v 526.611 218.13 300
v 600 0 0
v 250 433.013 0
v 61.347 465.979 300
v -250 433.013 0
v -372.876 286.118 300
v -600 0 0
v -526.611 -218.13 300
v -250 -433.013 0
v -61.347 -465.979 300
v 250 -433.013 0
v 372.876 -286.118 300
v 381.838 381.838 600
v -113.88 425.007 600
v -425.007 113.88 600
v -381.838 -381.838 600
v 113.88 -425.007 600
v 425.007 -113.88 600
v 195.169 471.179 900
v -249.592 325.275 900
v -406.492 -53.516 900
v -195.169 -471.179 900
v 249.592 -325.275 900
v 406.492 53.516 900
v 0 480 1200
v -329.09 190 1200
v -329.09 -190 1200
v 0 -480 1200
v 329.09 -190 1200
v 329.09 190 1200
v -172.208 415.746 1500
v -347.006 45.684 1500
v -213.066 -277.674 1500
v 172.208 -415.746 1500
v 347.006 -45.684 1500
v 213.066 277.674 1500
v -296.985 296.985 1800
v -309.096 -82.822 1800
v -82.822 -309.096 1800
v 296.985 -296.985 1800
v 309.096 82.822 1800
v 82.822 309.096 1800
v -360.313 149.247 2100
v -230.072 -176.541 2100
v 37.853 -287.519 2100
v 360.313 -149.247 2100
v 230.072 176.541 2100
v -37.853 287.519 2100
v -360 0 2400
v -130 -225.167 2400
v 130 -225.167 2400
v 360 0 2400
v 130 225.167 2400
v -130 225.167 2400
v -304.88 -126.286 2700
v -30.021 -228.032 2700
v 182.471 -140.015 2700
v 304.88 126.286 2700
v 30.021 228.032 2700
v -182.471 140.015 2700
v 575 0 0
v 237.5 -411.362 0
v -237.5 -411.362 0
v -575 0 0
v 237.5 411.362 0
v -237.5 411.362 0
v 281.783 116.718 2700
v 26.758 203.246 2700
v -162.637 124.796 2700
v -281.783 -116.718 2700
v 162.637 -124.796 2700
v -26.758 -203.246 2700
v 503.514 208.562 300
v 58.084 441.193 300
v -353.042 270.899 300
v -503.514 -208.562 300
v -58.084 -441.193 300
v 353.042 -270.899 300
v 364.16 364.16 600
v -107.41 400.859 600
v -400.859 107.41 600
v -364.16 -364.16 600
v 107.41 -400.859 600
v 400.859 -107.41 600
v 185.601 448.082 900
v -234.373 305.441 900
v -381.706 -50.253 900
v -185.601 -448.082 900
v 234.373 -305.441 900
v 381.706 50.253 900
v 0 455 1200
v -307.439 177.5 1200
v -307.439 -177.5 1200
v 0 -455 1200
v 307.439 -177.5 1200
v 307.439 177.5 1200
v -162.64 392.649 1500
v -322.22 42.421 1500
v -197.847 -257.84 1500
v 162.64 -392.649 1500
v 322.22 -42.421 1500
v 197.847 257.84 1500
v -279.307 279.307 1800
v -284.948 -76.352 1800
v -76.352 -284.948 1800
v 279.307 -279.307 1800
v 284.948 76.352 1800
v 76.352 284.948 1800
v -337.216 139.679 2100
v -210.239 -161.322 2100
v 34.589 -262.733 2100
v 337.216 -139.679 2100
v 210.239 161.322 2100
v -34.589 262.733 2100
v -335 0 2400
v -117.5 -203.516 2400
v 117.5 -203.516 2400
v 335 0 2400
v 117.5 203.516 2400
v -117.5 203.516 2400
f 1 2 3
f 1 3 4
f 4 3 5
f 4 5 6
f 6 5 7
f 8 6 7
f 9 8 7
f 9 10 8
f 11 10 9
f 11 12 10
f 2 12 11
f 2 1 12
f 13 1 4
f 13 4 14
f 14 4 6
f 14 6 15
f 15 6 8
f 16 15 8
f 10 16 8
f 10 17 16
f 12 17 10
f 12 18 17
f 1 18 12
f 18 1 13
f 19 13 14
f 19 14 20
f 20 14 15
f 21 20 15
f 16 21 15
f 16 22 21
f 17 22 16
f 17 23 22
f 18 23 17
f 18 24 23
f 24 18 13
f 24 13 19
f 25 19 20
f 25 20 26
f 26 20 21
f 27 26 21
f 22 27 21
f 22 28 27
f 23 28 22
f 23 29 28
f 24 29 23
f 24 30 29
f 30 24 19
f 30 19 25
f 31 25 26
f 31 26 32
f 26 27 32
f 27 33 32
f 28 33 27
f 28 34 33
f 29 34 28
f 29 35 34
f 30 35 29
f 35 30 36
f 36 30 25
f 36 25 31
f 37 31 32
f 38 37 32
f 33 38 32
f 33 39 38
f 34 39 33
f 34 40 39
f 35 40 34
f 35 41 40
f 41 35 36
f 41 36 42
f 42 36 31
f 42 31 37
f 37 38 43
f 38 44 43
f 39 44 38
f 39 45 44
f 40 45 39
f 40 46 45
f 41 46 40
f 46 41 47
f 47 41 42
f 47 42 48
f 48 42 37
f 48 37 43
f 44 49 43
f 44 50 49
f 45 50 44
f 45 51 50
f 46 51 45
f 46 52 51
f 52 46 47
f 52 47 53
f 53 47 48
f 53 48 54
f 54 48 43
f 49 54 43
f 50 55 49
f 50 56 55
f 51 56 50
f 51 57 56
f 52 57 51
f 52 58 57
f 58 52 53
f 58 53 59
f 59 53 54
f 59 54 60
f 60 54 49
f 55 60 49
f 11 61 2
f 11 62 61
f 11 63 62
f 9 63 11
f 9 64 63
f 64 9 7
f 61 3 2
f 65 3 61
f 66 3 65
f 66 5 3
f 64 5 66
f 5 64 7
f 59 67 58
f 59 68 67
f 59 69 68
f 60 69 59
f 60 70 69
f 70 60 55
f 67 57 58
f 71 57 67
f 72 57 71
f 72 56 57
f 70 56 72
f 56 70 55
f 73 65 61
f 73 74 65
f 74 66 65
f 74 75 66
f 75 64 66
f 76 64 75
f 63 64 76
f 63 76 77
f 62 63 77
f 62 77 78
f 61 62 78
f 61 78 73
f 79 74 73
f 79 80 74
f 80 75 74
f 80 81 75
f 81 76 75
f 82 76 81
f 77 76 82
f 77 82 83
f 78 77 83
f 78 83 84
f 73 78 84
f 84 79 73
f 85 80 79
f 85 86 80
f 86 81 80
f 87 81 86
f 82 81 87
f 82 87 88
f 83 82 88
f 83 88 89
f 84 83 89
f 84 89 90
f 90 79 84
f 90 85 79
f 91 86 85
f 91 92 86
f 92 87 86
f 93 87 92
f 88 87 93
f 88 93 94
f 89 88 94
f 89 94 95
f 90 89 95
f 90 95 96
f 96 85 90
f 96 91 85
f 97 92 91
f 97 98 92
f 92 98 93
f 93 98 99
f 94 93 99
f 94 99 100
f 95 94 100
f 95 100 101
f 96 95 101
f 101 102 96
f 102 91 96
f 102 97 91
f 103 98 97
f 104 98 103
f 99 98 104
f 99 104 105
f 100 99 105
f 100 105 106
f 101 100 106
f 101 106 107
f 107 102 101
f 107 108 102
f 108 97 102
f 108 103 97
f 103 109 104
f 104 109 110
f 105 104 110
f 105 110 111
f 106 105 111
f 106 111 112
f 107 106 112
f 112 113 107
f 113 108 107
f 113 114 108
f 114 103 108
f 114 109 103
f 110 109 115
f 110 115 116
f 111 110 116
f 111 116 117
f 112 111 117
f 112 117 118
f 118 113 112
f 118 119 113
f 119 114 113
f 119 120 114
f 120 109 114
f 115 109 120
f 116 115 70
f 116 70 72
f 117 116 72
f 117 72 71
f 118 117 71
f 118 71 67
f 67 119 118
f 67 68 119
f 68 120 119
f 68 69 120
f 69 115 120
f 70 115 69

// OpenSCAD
difference() {
	polyhedron(faces = [[0, 6, 1], [1, 6, 7], [1, 7, 2], [2, 7, 8], [2, 8, 3], [3, 8, 9], [3, 9, 4], [4, 9, 10], [4, 10, 5], [5, 10, 11], [5, 11, 0], [0, 11, 6], [6, 12, 7], [7, 12, 13], [7, 13, 8], [8, 13, 14], [8, 14, 9], [9, 14, 15], [9, 15, 10], [10, 15, 16], [10, 16, 11], [11, 16, 17], [11, 17, 6], [6, 17, 12], [12, 18, 13], [13, 18, 19], [13, 19, 14], [14, 19, 20], [14, 20, 15], [15, 20, 21], [15, 21, 16], [16, 21, 22], [16, 22, 17], [17, 22, 23], [17, 23, 12], [12, 23, 18], [18, 24, 19], [19, 24, 25], [19, 25, 20], [20, 25, 26], [20, 26, 21], [21, 26, 27], [21, 27, 22], [22, 27, 28], [22, 28, 23], [23, 28, 29], [23, 29, 18], [18, 29, 24], [24, 30, 25], [25, 30, 31], [25, 31, 26], [26, 31, 32], [26, 32, 27], [27, 32, 33], [27, 33, 28], [28, 33, 34], [28, 34, 29], [29, 34, 35], [29, 35, 24], [24, 35, 30], [30, 36, 31], [31, 36, 37], [31, 37, 32], [32, 37, 38], [32, 38, 33], [33, 38, 39], [33, 39, 34], [34, 39, 40], [34, 40, 35], [35, 40, 41], [35, 41, 30], [30, 41, 36], [36, 42, 37], [37, 42, 43], [37, 43, 38], [38, 43, 44], [38, 44, 39], [39, 44, 45], [39, 45, 40], [40, 45, 46], [40, 46, 41], [41, 46, 47], [41, 47, 36], [36, 47, 42], [42, 48, 43], [43, 48, 49], [43, 49, 44], [44, 49, 50], [44, 50, 45], [45, 50, 51], [45, 51, 46], [46, 51, 52], [46, 52, 47], [47, 52, 53], [47, 53, 42], [42, 53, 48], [48, 54, 49], [49, 54, 55], [49, 55, 50], [50, 55, 56], [50, 56, 51], [51, 56, 57], [51, 57, 52], [52, 57, 58], [52, 58, 53], [53, 58, 59], [53, 59, 48], [48, 59, 54], [1, 60, 0], [54, 61, 55], [2, 60, 1], [55, 61, 56], [3, 60, 2], [56, 61, 57], [4, 60, 3], [57, 61, 58], [5, 60, 4], [58, 61, 59], [0, 60, 5], [59, 61, 54]], points = [[600.0000000000, 0.0000000000, 0.0000000000], [250.0000000000, 433.0127018922, 0.0000000000], [-250.0000000000, 433.0127018922, 0.0000000000], [-600.0000000000, 0.0000000000, 0.0000000000], [-250.0000000000, -433.0127018922, 0.0000000000], [250.0000000000, -433.0127018922, 0.0000000000], [526.6113335314, 218.1295564481, 300.0000000000], [61.3473103434, 465.9790848457, 300.0000000000], [-372.8760699369, 286.1178716341, 300.0000000000], [-526.6113335314, -218.1295564481, 300.0000000000], [-61.3473103434, -465.9790848457, 300.0000000000], [372.8760699369, -286.1178716341, 300.0000000000], [381.8376618407, 381.8376618407, 600.0000000000], [-113.8803798451, 425.0073635672, 600.0000000000], [-425.0073635672, 113.8803798451, 600.0000000000], [-381.8376618407, -381.8376618407, 600.0000000000], [113.8803798451, -425.0073635672, 600.0000000000], [425.0073635672, -113.8803798451, 600.0000000000], [195.1685505062, 471.1785615808, 900.0000000000], [-249.5921858936, 325.2748695194, 900.0000000000], [-406.4923931633, -53.5157388102, 900.0000000000], [-195.1685505062, -471.1785615808, 900.0000000000], [249.5921858936, -325.2748695194, 900.0000000000], [406.4923931633, 53.5157388102, 900.0000000000], [0.0000000000, 480.0000000000, 1200.0000000000], [-329.0896534381, 190.0000000000, 1200.0000000000], [-329.0896534381, -190.0000000000, 1200.0000000000], [-0.0000000000, -480.0000000000, 1200.0000000000], [329.0896534381, -190.0000000000, 1200.0000000000], [329.0896534381, 190.0000000000, 1200.0000000000], [-172.2075445643, 415.7457896301, 1500.0000000000], [-347.0057014808, 45.6841672770, 1500.0000000000], [-213.0665001531, -277.6736691019, 1500.0000000000], [172.2075445643, -415.7457896301, 1500.0000000000], [347.0057014808, -45.6841672770, 1500.0000000000], [213.0665001531, 277.6736691019, 1500.0000000000], [-296.9848480983, 296.9848480983, 1800.0000000000], [-309.0962644125, -82.8220944328, 1800.0000000000], [-82.8220944328, -309.0962644125, 1800.0000000000], [296.9848480983, -296.9848480984, 1800.0000000000], [309.0962644125, 82.8220944328, 1800.0000000000], [82.8220944328, 309.0962644125, 1800.0000000000], [-360.3130176794, 149.2465386224, 2100.0000000000], [-230.0724686845, -176.5408144125, 2100.0000000000], [37.8525957438, -287.5190097984, 2100.0000000000], [360.3130176794, -149.2465386224, 2100.0000000000], [230.0724686845, 176.5408144125, 2100.0000000000], [-37.8525957438, 287.5190097984, 2100.0000000000], [-360.0000000000, 0.0000000000, 2400.0000000000], [-130.0000000000, -225.1666049840, 2400.0000000000], [130.0000000000, -225.1666049840, 2400.0000000000], [360.0000000000, -0.0000000000, 2400.0000000000], [130.0000000000, 225.1666049840, 2400.0000000000], [-130.0000000000, 225.1666049840, 2400.0000000000], [-304.8802457287, -126.2855326805, 2700.0000000000], [-30.0210242106, -228.0323181160, 2700.0000000000], [182.4712682670, -140.0151286720, 2700.0000000000], [304.8802457287, 126.2855326805, 2700.0000000000], [30.0210242106, 228.0323181160, 2700.0000000000], [-182.4712682670, 140.0151286720, 2700.0000000000], [-0.0000000000, 0.0000000000, 0.0000000000], [0.0000000000, 0.0000000000, 2700.0000000000]]);
	polyhedron(faces = [[0, 6, 1], [1, 6, 7], [1, 7, 2], [2, 7, 8], [2, 8, 3], [3, 8, 9], [3, 9, 4], [4, 9, 10], [4, 10, 5], [5, 10, 11], [5, 11, 0], [0, 11, 6], [6, 12, 7], [7, 12, 13], [7, 13, 8], [8, 13, 14], [8, 14, 9], [9, 14, 15], [9, 15, 10], [10, 15, 16], [10, 16, 11], [11, 16, 17], [11, 17, 6], [6, 17, 12], [12, 18, 13], [13, 18, 19], [13, 19, 14], [14, 19, 20], [14, 20, 15], [15, 20, 21], [15, 21, 16], [16, 21, 22], [16, 22, 17], [17, 22, 23], [17, 23, 12], [12, 23, 18], [18, 24, 19], [19, 24, 25], [19, 25, 20], [20, 25, 26], [20, 26, 21], [21, 26, 27], [21, 27, 22], [22, 27, 28], [22, 28, 23], [23, 28, 29], [23, 29, 18], [18, 29, 24], [24, 30, 25], [25, 30, 31], [25, 31, 26], [26, 31, 32], [26, 32, 27], [27, 32, 33], [27, 33, 28], [28, 33, 34], [28, 34, 29], [29, 34, 35], [29, 35, 24], [24, 35, 30], [30, 36, 31], [31, 36, 37], [31, 37, 32], [32, 37, 38], [32, 38, 33], [33, 38, 39], [33, 39, 34], [34, 39, 40], [34, 40, 35], [35, 40, 41], [35, 41, 30], [30, 41, 36], [36, 42, 37], [37, 42, 43], [37, 43, 38], [38, 43, 44], [38, 44, 39], [39, 44, 45], [39, 45, 40], [40, 45, 46], [40, 46, 41], [41, 46, 47], [41, 47, 36], [36, 47, 42], [42, 48, 43], [43, 48, 49], [43, 49, 44], [44, 49, 50], [44, 50, 45], [45, 50, 51], [45, 51, 46], [46, 51, 52], [46, 52, 47], [47, 52, 53], [47, 53, 42], [42, 53, 48], [48, 54, 49], [49, 54, 55], [49, 55, 50], [50, 55, 56], [50, 56, 51], [51, 56, 57], [51, 57, 52], [52, 57, 58], [52, 58, 53], [53, 58, 59], [53, 59, 48], [48, 59, 54], [1, 60, 0], [54, 61, 55], [2, 60, 1], [55, 61, 56], [3, 60, 2], [56, 61, 57], [4, 60, 3], [57, 61, 58], [5, 60, 4], [58, 61, 59], [0, 60, 5], [59, 61, 54]], points = [[575.0000000000, 0.0000000000, 0.0000000000], [237.5000000000, 411.3620667976, 0.0000000000], [-237.5000000000, 411.3620667976, 0.0000000000], [-575.0000000000, 0.0000000000, 0.0000000000], [-237.5000000000, -411.3620667976, 0.0000000000], [237.5000000000, -411.3620667976, 0.0000000000], [503.5143452187, 208.5624706390, 300.0000000000], [58.0841555379, 441.1929633113, 300.0000000000], [-353.0422364296, 270.8988359089, 300.0000000000], [-503.5143452187, -208.5624706390, 300.0000000000], [-58.0841555379, -441.1929633113, 300.0000000000], [353.0422364296, -270.8988359089, 300.0000000000], [364.1599923111, 364.1599923111, 600.0000000000], [-107.4099037175, 400.8592179100, 600.0000000000], [-400.8592179100, 107.4099037175, 600.0000000000], [-364.1599923111, -364.1599923111, 600.0000000000], [107.4099037175, -400.8592179100, 600.0000000000], [400.8592179100, -107.4099037175, 600.0000000000], [185.6014646971, 448.0815732680, 900.0000000000], [-234.3731501684, 305.4410360121, 900.0000000000], [-381.7062716289, -50.2525840047, 900.0000000000], [-185.6014646971, -448.0815732680, 900.0000000000], [234.3731501684, -305.4410360121, 900.0000000000], [381.7062716289, 50.2525840047, 900.0000000000], [0.0000000000, 455.0000000000, 1200.0000000000], [-307.4390183435, 177.5000000000, 1200.0000000000], [-307.4390183435, -177.5000000000, 1200.0000000000], [-0.0000000000, -455.0000000000, 1200.0000000000], [307.4390183435, -177.5000000000, 1200.0000000000], [307.4390183435, 177.5000000000, 1200.0000000000], [-162.6404587552, 392.6488013173, 1500.0000000000], [-322.2195799465, 42.4210124715, 1500.0000000000], [-197.8474644278, -257.8398355947, 1500.0000000000], [162.6404587552, -392.6488013173, 1500.0000000000], [322.2195799465, -42.4210124715, 1500.0000000000], [197.8474644278, 257.8398355947, 1500.0000000000], [-279.3071785687, 279.3071785687, 1800.0000000000], [-284.9481187553, -76.3516183052, 1800.0000000000], [-76.3516183052, -284.9481187553, 1800.0000000000], [279.3071785687, -279.3071785687, 1800.0000000000], [284.9481187553, 76.3516183052, 1800.0000000000], [76.3516183052, 284.9481187553, 1800.0000000000], [-337.2160293666, 139.6794528133, 2100.0000000000], [-210.2386351772, -161.3217786873, 2100.0000000000], [34.5894409383, -262.7328882641, 2100.0000000000], [337.2160293666, -139.6794528133, 2100.0000000000], [210.2386351772, 161.3217786873, 2100.0000000000], [-34.5894409383, 262.7328882641, 2100.0000000000], [-335.0000000000, 0.0000000000, 2400.0000000000], [-117.5000000000, -203.5159698893, 2400.0000000000], [117.5000000000, -203.5159698893, 2400.0000000000], [335.0000000000, -0.0000000000, 2400.0000000000], [117.5000000000, 203.5159698893, 2400.0000000000], [-117.5000000000, 203.5159698893, 2400.0000000000], [-281.7832574159, -116.7184468714, 2700.0000000000], [-26.7578694051, -203.2461965816, 2700.0000000000], [162.6374347597, -124.7960929468, 2700.0000000000], [281.7832574159, 116.7184468714, 2700.0000000000], [26.7578694051, 203.2461965816, 2700.0000000000], [-162.6374347597, 124.7960929468, 2700.0000000000], [-0.0000000000, 0.0000000000, 0.0000000000], [0.0000000000, 0.0000000000, 2700.0000000000]]);
}
